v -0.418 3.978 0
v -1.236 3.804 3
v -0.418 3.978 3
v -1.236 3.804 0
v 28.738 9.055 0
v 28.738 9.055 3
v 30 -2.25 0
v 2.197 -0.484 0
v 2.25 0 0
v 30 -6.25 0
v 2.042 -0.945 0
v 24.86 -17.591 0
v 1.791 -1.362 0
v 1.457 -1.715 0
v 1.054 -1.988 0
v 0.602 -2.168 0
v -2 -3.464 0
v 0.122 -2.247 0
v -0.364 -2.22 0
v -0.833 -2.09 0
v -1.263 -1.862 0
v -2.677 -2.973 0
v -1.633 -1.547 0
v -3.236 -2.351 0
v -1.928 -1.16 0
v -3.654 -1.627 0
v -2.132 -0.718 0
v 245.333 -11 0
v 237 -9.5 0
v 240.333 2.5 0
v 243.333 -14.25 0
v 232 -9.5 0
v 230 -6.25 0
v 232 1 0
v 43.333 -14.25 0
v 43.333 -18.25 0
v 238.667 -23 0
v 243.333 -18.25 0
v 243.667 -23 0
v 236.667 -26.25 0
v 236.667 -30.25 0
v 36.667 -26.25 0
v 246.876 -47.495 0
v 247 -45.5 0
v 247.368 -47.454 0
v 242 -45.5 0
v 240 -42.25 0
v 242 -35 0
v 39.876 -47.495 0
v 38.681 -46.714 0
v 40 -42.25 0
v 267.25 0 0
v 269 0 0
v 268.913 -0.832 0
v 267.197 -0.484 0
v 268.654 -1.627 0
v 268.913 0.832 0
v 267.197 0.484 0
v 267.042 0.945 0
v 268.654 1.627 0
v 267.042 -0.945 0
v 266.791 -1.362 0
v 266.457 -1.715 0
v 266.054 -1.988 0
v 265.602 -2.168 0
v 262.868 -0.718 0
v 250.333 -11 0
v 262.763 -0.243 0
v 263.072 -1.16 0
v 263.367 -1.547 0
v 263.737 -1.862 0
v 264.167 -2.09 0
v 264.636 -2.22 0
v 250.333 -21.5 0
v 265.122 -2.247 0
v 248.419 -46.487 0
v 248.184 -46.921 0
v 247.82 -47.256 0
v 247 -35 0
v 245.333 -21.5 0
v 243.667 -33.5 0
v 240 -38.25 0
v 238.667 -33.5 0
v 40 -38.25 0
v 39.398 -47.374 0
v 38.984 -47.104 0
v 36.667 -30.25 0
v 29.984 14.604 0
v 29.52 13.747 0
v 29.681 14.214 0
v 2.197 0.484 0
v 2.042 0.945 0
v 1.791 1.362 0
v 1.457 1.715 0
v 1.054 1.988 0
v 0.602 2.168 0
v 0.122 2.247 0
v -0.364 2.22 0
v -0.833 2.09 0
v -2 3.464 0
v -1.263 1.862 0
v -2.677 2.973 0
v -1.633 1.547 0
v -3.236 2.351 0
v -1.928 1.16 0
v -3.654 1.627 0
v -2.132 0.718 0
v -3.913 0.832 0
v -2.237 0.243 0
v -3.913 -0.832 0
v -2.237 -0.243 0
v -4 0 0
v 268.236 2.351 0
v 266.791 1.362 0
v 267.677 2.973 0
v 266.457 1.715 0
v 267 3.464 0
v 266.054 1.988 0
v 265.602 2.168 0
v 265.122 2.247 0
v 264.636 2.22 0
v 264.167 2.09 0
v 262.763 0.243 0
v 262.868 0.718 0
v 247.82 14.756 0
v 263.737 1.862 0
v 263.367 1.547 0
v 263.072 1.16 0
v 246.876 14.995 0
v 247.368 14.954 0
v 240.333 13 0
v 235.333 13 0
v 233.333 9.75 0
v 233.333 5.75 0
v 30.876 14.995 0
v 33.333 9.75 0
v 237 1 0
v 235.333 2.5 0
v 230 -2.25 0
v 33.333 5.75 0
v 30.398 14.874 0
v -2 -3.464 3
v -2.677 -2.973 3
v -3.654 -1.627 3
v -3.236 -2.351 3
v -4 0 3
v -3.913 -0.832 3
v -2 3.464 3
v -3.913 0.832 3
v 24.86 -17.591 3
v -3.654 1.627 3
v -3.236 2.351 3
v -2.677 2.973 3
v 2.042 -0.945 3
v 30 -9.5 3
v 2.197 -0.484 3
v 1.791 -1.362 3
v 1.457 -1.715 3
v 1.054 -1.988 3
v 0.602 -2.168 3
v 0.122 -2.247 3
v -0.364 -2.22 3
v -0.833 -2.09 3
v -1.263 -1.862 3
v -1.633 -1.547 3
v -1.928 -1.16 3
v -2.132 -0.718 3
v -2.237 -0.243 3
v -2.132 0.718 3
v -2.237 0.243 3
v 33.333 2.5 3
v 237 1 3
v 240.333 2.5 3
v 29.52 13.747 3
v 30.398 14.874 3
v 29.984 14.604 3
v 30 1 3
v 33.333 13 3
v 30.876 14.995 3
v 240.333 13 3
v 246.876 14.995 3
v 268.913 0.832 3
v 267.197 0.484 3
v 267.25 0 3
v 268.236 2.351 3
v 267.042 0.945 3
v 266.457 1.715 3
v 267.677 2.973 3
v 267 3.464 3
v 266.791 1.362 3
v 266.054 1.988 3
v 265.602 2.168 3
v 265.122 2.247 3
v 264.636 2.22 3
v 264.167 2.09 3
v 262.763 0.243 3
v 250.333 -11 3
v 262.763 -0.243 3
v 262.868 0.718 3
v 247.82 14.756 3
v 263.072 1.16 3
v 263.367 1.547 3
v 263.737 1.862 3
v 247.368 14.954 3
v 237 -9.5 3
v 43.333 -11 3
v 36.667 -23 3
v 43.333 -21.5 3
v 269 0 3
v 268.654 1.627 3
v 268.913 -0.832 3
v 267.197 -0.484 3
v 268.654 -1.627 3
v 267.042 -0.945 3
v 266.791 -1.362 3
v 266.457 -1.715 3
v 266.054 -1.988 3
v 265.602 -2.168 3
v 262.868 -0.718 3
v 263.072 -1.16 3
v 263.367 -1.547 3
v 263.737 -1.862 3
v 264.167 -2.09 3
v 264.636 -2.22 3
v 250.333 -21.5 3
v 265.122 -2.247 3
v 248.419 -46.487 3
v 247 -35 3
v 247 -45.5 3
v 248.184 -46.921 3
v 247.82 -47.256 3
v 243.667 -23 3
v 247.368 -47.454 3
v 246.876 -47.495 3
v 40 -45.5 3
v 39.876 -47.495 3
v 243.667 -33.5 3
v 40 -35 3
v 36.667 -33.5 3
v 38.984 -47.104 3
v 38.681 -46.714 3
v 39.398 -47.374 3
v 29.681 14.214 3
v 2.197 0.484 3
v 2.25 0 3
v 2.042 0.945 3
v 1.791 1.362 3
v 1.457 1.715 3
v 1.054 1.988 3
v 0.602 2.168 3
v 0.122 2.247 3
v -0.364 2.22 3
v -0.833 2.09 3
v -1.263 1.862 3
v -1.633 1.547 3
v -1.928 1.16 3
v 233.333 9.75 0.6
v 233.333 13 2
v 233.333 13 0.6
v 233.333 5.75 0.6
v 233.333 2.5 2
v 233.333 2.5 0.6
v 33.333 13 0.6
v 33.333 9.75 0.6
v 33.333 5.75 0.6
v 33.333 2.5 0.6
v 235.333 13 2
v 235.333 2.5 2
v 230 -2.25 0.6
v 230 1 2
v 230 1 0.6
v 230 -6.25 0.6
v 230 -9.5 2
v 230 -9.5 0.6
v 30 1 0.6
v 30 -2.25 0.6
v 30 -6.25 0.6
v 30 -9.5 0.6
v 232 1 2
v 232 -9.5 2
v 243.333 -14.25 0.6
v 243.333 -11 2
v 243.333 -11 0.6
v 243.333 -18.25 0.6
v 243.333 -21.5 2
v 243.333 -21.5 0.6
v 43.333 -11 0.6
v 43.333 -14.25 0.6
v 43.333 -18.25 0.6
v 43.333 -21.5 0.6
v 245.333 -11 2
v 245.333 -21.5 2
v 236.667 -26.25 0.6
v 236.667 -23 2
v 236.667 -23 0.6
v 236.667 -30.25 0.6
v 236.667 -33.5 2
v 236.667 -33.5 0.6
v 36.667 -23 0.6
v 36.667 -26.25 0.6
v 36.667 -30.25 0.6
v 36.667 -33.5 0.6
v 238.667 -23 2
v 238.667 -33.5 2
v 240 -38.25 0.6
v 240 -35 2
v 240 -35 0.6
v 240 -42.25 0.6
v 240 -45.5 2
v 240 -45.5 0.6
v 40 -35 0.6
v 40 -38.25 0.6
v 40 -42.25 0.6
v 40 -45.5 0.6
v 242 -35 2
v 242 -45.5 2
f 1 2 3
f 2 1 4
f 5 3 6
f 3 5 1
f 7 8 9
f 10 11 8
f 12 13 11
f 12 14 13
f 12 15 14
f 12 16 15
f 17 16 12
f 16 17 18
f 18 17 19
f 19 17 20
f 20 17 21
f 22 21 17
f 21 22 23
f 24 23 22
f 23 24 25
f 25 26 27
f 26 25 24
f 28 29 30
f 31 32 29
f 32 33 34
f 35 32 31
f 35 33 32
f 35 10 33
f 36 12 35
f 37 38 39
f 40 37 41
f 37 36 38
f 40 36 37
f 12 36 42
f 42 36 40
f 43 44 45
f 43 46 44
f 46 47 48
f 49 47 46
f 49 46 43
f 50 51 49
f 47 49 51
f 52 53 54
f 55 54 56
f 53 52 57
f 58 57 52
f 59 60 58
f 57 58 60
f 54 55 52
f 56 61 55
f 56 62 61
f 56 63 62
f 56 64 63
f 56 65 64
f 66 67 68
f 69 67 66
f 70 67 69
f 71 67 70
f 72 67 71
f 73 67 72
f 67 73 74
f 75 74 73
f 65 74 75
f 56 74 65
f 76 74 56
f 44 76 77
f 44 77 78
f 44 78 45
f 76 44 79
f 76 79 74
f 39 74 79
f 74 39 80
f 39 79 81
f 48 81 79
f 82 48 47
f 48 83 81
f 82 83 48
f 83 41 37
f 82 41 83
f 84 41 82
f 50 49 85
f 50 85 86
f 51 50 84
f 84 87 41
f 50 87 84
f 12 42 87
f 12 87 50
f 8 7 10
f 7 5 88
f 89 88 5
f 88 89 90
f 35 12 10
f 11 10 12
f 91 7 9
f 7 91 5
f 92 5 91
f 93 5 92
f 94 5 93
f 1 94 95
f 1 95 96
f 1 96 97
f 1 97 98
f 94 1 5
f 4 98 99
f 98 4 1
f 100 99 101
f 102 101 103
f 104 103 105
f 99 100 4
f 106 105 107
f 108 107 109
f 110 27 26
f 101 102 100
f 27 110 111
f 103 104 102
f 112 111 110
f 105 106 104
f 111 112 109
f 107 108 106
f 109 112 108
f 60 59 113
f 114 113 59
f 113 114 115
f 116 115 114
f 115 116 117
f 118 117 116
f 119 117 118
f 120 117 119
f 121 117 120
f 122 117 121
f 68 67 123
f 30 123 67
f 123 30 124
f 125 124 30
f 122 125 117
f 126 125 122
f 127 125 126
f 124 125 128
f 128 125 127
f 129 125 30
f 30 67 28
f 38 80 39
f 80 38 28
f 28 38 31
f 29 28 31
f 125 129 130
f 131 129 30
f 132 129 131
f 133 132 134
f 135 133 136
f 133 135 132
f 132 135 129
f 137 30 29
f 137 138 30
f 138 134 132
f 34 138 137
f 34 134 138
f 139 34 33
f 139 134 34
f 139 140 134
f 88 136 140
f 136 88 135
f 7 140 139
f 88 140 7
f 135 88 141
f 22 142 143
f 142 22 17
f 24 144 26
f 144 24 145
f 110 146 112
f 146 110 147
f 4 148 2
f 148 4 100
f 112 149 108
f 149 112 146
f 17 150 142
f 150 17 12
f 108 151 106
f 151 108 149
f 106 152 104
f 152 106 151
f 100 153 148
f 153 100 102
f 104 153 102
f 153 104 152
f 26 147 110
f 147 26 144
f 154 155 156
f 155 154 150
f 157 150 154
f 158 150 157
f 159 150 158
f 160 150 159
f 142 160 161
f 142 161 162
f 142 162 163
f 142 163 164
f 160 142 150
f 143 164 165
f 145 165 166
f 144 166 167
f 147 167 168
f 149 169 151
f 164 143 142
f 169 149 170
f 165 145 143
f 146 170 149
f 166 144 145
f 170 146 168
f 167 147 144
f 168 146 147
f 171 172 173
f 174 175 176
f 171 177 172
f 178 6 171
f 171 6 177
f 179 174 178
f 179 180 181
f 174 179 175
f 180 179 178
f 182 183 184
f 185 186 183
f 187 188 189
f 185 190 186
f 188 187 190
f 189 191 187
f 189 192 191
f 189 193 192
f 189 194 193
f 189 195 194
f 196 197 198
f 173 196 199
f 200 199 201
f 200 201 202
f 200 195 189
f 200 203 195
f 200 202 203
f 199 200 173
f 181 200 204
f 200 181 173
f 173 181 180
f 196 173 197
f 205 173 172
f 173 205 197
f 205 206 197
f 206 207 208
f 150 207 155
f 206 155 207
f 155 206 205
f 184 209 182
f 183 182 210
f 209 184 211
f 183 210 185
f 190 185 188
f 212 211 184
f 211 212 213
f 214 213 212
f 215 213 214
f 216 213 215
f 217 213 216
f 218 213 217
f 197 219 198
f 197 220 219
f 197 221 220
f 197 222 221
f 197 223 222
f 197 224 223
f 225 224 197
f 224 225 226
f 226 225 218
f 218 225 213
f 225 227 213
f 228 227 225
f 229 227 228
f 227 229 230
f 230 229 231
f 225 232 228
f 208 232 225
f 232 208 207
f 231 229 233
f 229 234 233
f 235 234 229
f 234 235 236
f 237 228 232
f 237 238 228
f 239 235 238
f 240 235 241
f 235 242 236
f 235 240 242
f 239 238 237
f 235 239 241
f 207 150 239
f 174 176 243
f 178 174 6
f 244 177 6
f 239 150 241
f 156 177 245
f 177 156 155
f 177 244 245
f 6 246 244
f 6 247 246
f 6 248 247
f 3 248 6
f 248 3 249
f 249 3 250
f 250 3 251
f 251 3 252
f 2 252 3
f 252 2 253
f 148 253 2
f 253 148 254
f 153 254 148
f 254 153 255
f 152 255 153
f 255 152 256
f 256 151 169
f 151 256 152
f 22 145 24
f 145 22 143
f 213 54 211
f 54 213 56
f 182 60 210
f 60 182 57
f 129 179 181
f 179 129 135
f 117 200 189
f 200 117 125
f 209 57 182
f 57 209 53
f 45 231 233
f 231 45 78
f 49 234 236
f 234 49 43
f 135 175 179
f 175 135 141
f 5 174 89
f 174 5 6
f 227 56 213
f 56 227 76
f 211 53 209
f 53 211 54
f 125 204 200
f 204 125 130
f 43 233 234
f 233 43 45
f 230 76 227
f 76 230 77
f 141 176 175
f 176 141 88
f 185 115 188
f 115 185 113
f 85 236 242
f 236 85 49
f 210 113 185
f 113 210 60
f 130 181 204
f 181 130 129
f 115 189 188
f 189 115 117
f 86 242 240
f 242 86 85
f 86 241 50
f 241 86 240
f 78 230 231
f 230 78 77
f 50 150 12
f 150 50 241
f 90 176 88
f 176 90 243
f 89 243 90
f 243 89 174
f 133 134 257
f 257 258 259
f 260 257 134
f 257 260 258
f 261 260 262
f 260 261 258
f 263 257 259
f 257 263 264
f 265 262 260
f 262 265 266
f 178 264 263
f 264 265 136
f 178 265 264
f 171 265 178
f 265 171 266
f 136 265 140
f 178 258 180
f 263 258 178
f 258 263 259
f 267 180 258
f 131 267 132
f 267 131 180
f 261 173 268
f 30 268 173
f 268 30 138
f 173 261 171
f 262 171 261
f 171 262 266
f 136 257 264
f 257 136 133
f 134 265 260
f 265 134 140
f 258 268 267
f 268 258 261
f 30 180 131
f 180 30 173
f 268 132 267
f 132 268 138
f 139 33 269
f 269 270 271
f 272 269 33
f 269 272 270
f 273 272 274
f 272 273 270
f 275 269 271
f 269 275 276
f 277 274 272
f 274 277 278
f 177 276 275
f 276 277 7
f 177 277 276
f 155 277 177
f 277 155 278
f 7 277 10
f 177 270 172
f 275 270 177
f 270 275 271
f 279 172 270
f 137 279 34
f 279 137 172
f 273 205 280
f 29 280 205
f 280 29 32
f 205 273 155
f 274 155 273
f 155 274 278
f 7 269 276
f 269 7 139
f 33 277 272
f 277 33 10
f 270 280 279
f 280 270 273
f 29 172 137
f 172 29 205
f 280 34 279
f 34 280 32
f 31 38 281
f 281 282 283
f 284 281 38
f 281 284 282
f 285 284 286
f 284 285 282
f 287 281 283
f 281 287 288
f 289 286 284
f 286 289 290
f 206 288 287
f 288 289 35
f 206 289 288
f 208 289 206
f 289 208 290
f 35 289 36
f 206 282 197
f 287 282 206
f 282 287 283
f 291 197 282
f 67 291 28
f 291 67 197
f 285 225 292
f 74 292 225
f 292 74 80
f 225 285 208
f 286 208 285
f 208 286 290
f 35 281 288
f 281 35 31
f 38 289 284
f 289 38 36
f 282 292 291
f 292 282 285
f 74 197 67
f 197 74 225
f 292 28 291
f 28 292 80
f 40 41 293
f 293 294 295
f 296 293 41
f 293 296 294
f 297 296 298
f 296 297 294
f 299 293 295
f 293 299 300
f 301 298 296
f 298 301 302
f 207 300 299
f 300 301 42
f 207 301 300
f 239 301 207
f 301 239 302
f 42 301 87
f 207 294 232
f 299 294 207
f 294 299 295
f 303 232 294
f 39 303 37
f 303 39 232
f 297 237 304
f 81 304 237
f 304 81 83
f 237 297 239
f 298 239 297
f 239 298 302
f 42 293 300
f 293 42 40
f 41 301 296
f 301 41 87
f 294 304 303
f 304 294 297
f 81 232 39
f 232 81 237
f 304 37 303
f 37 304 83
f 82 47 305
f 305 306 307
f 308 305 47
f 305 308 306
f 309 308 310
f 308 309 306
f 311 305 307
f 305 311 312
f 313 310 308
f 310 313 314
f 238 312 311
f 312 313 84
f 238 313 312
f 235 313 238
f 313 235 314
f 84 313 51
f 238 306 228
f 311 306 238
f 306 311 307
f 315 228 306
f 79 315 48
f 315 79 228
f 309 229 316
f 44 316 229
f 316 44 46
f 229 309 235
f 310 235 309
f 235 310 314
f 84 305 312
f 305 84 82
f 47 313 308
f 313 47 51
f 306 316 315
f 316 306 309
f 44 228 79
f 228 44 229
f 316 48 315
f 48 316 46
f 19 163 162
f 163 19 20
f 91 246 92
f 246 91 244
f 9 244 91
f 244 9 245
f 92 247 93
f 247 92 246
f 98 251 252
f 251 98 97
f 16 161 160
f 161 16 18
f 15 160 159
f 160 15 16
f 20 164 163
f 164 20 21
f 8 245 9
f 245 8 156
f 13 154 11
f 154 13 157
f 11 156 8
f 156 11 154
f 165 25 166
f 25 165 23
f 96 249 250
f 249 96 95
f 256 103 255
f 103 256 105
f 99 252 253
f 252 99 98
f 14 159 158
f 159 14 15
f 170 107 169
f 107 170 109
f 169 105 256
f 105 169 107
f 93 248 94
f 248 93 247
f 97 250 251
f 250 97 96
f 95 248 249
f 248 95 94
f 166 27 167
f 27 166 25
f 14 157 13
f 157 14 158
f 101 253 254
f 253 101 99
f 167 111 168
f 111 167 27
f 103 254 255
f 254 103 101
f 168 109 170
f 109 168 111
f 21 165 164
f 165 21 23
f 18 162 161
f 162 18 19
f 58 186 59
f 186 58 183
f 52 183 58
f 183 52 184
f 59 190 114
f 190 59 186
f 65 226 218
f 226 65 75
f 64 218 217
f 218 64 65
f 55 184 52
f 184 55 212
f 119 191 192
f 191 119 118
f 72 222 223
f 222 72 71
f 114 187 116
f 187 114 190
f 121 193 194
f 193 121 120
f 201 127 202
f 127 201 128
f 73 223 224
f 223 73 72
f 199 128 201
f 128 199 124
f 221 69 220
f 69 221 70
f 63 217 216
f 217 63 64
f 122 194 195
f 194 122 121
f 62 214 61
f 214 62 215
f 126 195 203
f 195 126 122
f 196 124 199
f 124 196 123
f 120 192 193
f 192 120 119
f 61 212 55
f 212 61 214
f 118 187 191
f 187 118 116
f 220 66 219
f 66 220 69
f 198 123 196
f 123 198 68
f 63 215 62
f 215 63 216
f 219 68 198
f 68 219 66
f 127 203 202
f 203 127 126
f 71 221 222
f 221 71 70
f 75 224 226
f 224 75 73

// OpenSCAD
// LED strip holder for M2
//
// Copyright (C) 2020  Kevin O'Connor <kevin@koconnor.net>
//
// This file may be distributed under the terms of the GNU GPLv3 license.

// Room at top for 2.5 inches width == 63.5mm
// Top frame screws measure 10 7/16 inches apart == 265mm
//  (10 11/16 - 4/16 == 10 7/16)

// Right Screw is ~9mm from steel frame; bed is ~19mm from steel frame.
// Screw ~9.5mm from edge.

// LED strip is 10mm wide by 1mm high.  Each section is 100mm long.

// Longest diagonal print on M2 is 320mm (sqrt(200**2 + 250**2))

plate_height = 3;
outside_wall = 2;
screw_holder = 8;
screw_dia = 4.5;
m2_rscrew_x = 265;
x_idler_offset_x = 26;
x_idler_offset_y1 = 30;
x_idler_offset_y2 = 4;
led_frame_x = 40;
led_frame_y = 15;
led_frame_length = 200;
led_frame_height = .6;
led_width = 10 + .5;
light_width = 4;
led_tracks = 5;
spacing = 100 / 6;
track_offsets = [2*spacing/5, 3*spacing/5, -spacing/5, spacing/5, 0];
led_bump_length = 2;
led_bump_height = 1;
led_wire_length = 5;
led_wall = 1.5;
slack = 1;
CUT = 0.01;
$fs = .5;

module led_plate() {
    module cyl(d, x, y) {
        translate([x, y])
            cylinder(d=d, h=plate_height);
    }
    led_frame_width = (led_width + led_wall) * led_tracks;
    frame_width = led_frame_width - led_wall + 2 * outside_wall;
    //echo(frame_width);
    hull_dia = 3;
    hull_left = led_frame_x;
    hull_right = led_frame_x + led_frame_length + led_bump_length + led_wire_length;
    hull_y1 = led_frame_y - hull_dia/2;
    hull_y2 = led_frame_y - frame_width + hull_dia/2;
    module plate() {
        hull() {
            cyl(screw_holder, 0, 0);
            cyl(hull_dia, x_idler_offset_x, hull_y1 - x_idler_offset_y1);
            cyl(hull_dia, hull_left, hull_y1 - x_idler_offset_y2);
        }
        hull() {
            cyl(hull_dia, x_idler_offset_x, hull_y1 - x_idler_offset_y1);
            cyl(hull_dia, x_idler_offset_x, hull_y1 - x_idler_offset_y1);
            cyl(hull_dia, x_idler_offset_x + 5, hull_y1);
            cyl(hull_dia, hull_left, hull_y1);
            cyl(hull_dia, hull_left, hull_y2);
            cyl(hull_dia, hull_right, hull_y1);
            cyl(hull_dia, hull_right, hull_y2);
            cyl(screw_holder, m2_rscrew_x, 0);
        }
    }
    module led_track() {
        // Main channel to hold leds
        cube([led_frame_length, led_width, plate_height]);
        // Open space for light
        translate([0, (led_width - light_width)/2, -99])
            cube([led_frame_length, light_width, plate_height+99+CUT]);
        // Space for led wires
        bump_z = plate_height - (led_frame_height+led_bump_height);
        translate([led_frame_length - CUT, 0, bump_z])
            cube([led_bump_length+2*CUT, led_width, plate_height]);
        translate([led_frame_length + led_bump_length, 0, -99])
            cube([led_wire_length, led_width, 99 + plate_height + 2*CUT]);
    }
    track_y = led_frame_y - outside_wall - led_width;
    difference() {
        plate();
        translate([0, 0, -CUT])
            cylinder(d=screw_dia, h=plate_height + 2*CUT);
        translate([m2_rscrew_x, 0, -CUT])
            cylinder(d=screw_dia, h=plate_height + 2*CUT);
        for (i=[0:led_tracks-1]) {
            y = track_y - i * (led_width + led_wall);
            translate([led_frame_x - track_offsets[i], y, led_frame_height])
                led_track();
        }
    }
}

led_plate();
